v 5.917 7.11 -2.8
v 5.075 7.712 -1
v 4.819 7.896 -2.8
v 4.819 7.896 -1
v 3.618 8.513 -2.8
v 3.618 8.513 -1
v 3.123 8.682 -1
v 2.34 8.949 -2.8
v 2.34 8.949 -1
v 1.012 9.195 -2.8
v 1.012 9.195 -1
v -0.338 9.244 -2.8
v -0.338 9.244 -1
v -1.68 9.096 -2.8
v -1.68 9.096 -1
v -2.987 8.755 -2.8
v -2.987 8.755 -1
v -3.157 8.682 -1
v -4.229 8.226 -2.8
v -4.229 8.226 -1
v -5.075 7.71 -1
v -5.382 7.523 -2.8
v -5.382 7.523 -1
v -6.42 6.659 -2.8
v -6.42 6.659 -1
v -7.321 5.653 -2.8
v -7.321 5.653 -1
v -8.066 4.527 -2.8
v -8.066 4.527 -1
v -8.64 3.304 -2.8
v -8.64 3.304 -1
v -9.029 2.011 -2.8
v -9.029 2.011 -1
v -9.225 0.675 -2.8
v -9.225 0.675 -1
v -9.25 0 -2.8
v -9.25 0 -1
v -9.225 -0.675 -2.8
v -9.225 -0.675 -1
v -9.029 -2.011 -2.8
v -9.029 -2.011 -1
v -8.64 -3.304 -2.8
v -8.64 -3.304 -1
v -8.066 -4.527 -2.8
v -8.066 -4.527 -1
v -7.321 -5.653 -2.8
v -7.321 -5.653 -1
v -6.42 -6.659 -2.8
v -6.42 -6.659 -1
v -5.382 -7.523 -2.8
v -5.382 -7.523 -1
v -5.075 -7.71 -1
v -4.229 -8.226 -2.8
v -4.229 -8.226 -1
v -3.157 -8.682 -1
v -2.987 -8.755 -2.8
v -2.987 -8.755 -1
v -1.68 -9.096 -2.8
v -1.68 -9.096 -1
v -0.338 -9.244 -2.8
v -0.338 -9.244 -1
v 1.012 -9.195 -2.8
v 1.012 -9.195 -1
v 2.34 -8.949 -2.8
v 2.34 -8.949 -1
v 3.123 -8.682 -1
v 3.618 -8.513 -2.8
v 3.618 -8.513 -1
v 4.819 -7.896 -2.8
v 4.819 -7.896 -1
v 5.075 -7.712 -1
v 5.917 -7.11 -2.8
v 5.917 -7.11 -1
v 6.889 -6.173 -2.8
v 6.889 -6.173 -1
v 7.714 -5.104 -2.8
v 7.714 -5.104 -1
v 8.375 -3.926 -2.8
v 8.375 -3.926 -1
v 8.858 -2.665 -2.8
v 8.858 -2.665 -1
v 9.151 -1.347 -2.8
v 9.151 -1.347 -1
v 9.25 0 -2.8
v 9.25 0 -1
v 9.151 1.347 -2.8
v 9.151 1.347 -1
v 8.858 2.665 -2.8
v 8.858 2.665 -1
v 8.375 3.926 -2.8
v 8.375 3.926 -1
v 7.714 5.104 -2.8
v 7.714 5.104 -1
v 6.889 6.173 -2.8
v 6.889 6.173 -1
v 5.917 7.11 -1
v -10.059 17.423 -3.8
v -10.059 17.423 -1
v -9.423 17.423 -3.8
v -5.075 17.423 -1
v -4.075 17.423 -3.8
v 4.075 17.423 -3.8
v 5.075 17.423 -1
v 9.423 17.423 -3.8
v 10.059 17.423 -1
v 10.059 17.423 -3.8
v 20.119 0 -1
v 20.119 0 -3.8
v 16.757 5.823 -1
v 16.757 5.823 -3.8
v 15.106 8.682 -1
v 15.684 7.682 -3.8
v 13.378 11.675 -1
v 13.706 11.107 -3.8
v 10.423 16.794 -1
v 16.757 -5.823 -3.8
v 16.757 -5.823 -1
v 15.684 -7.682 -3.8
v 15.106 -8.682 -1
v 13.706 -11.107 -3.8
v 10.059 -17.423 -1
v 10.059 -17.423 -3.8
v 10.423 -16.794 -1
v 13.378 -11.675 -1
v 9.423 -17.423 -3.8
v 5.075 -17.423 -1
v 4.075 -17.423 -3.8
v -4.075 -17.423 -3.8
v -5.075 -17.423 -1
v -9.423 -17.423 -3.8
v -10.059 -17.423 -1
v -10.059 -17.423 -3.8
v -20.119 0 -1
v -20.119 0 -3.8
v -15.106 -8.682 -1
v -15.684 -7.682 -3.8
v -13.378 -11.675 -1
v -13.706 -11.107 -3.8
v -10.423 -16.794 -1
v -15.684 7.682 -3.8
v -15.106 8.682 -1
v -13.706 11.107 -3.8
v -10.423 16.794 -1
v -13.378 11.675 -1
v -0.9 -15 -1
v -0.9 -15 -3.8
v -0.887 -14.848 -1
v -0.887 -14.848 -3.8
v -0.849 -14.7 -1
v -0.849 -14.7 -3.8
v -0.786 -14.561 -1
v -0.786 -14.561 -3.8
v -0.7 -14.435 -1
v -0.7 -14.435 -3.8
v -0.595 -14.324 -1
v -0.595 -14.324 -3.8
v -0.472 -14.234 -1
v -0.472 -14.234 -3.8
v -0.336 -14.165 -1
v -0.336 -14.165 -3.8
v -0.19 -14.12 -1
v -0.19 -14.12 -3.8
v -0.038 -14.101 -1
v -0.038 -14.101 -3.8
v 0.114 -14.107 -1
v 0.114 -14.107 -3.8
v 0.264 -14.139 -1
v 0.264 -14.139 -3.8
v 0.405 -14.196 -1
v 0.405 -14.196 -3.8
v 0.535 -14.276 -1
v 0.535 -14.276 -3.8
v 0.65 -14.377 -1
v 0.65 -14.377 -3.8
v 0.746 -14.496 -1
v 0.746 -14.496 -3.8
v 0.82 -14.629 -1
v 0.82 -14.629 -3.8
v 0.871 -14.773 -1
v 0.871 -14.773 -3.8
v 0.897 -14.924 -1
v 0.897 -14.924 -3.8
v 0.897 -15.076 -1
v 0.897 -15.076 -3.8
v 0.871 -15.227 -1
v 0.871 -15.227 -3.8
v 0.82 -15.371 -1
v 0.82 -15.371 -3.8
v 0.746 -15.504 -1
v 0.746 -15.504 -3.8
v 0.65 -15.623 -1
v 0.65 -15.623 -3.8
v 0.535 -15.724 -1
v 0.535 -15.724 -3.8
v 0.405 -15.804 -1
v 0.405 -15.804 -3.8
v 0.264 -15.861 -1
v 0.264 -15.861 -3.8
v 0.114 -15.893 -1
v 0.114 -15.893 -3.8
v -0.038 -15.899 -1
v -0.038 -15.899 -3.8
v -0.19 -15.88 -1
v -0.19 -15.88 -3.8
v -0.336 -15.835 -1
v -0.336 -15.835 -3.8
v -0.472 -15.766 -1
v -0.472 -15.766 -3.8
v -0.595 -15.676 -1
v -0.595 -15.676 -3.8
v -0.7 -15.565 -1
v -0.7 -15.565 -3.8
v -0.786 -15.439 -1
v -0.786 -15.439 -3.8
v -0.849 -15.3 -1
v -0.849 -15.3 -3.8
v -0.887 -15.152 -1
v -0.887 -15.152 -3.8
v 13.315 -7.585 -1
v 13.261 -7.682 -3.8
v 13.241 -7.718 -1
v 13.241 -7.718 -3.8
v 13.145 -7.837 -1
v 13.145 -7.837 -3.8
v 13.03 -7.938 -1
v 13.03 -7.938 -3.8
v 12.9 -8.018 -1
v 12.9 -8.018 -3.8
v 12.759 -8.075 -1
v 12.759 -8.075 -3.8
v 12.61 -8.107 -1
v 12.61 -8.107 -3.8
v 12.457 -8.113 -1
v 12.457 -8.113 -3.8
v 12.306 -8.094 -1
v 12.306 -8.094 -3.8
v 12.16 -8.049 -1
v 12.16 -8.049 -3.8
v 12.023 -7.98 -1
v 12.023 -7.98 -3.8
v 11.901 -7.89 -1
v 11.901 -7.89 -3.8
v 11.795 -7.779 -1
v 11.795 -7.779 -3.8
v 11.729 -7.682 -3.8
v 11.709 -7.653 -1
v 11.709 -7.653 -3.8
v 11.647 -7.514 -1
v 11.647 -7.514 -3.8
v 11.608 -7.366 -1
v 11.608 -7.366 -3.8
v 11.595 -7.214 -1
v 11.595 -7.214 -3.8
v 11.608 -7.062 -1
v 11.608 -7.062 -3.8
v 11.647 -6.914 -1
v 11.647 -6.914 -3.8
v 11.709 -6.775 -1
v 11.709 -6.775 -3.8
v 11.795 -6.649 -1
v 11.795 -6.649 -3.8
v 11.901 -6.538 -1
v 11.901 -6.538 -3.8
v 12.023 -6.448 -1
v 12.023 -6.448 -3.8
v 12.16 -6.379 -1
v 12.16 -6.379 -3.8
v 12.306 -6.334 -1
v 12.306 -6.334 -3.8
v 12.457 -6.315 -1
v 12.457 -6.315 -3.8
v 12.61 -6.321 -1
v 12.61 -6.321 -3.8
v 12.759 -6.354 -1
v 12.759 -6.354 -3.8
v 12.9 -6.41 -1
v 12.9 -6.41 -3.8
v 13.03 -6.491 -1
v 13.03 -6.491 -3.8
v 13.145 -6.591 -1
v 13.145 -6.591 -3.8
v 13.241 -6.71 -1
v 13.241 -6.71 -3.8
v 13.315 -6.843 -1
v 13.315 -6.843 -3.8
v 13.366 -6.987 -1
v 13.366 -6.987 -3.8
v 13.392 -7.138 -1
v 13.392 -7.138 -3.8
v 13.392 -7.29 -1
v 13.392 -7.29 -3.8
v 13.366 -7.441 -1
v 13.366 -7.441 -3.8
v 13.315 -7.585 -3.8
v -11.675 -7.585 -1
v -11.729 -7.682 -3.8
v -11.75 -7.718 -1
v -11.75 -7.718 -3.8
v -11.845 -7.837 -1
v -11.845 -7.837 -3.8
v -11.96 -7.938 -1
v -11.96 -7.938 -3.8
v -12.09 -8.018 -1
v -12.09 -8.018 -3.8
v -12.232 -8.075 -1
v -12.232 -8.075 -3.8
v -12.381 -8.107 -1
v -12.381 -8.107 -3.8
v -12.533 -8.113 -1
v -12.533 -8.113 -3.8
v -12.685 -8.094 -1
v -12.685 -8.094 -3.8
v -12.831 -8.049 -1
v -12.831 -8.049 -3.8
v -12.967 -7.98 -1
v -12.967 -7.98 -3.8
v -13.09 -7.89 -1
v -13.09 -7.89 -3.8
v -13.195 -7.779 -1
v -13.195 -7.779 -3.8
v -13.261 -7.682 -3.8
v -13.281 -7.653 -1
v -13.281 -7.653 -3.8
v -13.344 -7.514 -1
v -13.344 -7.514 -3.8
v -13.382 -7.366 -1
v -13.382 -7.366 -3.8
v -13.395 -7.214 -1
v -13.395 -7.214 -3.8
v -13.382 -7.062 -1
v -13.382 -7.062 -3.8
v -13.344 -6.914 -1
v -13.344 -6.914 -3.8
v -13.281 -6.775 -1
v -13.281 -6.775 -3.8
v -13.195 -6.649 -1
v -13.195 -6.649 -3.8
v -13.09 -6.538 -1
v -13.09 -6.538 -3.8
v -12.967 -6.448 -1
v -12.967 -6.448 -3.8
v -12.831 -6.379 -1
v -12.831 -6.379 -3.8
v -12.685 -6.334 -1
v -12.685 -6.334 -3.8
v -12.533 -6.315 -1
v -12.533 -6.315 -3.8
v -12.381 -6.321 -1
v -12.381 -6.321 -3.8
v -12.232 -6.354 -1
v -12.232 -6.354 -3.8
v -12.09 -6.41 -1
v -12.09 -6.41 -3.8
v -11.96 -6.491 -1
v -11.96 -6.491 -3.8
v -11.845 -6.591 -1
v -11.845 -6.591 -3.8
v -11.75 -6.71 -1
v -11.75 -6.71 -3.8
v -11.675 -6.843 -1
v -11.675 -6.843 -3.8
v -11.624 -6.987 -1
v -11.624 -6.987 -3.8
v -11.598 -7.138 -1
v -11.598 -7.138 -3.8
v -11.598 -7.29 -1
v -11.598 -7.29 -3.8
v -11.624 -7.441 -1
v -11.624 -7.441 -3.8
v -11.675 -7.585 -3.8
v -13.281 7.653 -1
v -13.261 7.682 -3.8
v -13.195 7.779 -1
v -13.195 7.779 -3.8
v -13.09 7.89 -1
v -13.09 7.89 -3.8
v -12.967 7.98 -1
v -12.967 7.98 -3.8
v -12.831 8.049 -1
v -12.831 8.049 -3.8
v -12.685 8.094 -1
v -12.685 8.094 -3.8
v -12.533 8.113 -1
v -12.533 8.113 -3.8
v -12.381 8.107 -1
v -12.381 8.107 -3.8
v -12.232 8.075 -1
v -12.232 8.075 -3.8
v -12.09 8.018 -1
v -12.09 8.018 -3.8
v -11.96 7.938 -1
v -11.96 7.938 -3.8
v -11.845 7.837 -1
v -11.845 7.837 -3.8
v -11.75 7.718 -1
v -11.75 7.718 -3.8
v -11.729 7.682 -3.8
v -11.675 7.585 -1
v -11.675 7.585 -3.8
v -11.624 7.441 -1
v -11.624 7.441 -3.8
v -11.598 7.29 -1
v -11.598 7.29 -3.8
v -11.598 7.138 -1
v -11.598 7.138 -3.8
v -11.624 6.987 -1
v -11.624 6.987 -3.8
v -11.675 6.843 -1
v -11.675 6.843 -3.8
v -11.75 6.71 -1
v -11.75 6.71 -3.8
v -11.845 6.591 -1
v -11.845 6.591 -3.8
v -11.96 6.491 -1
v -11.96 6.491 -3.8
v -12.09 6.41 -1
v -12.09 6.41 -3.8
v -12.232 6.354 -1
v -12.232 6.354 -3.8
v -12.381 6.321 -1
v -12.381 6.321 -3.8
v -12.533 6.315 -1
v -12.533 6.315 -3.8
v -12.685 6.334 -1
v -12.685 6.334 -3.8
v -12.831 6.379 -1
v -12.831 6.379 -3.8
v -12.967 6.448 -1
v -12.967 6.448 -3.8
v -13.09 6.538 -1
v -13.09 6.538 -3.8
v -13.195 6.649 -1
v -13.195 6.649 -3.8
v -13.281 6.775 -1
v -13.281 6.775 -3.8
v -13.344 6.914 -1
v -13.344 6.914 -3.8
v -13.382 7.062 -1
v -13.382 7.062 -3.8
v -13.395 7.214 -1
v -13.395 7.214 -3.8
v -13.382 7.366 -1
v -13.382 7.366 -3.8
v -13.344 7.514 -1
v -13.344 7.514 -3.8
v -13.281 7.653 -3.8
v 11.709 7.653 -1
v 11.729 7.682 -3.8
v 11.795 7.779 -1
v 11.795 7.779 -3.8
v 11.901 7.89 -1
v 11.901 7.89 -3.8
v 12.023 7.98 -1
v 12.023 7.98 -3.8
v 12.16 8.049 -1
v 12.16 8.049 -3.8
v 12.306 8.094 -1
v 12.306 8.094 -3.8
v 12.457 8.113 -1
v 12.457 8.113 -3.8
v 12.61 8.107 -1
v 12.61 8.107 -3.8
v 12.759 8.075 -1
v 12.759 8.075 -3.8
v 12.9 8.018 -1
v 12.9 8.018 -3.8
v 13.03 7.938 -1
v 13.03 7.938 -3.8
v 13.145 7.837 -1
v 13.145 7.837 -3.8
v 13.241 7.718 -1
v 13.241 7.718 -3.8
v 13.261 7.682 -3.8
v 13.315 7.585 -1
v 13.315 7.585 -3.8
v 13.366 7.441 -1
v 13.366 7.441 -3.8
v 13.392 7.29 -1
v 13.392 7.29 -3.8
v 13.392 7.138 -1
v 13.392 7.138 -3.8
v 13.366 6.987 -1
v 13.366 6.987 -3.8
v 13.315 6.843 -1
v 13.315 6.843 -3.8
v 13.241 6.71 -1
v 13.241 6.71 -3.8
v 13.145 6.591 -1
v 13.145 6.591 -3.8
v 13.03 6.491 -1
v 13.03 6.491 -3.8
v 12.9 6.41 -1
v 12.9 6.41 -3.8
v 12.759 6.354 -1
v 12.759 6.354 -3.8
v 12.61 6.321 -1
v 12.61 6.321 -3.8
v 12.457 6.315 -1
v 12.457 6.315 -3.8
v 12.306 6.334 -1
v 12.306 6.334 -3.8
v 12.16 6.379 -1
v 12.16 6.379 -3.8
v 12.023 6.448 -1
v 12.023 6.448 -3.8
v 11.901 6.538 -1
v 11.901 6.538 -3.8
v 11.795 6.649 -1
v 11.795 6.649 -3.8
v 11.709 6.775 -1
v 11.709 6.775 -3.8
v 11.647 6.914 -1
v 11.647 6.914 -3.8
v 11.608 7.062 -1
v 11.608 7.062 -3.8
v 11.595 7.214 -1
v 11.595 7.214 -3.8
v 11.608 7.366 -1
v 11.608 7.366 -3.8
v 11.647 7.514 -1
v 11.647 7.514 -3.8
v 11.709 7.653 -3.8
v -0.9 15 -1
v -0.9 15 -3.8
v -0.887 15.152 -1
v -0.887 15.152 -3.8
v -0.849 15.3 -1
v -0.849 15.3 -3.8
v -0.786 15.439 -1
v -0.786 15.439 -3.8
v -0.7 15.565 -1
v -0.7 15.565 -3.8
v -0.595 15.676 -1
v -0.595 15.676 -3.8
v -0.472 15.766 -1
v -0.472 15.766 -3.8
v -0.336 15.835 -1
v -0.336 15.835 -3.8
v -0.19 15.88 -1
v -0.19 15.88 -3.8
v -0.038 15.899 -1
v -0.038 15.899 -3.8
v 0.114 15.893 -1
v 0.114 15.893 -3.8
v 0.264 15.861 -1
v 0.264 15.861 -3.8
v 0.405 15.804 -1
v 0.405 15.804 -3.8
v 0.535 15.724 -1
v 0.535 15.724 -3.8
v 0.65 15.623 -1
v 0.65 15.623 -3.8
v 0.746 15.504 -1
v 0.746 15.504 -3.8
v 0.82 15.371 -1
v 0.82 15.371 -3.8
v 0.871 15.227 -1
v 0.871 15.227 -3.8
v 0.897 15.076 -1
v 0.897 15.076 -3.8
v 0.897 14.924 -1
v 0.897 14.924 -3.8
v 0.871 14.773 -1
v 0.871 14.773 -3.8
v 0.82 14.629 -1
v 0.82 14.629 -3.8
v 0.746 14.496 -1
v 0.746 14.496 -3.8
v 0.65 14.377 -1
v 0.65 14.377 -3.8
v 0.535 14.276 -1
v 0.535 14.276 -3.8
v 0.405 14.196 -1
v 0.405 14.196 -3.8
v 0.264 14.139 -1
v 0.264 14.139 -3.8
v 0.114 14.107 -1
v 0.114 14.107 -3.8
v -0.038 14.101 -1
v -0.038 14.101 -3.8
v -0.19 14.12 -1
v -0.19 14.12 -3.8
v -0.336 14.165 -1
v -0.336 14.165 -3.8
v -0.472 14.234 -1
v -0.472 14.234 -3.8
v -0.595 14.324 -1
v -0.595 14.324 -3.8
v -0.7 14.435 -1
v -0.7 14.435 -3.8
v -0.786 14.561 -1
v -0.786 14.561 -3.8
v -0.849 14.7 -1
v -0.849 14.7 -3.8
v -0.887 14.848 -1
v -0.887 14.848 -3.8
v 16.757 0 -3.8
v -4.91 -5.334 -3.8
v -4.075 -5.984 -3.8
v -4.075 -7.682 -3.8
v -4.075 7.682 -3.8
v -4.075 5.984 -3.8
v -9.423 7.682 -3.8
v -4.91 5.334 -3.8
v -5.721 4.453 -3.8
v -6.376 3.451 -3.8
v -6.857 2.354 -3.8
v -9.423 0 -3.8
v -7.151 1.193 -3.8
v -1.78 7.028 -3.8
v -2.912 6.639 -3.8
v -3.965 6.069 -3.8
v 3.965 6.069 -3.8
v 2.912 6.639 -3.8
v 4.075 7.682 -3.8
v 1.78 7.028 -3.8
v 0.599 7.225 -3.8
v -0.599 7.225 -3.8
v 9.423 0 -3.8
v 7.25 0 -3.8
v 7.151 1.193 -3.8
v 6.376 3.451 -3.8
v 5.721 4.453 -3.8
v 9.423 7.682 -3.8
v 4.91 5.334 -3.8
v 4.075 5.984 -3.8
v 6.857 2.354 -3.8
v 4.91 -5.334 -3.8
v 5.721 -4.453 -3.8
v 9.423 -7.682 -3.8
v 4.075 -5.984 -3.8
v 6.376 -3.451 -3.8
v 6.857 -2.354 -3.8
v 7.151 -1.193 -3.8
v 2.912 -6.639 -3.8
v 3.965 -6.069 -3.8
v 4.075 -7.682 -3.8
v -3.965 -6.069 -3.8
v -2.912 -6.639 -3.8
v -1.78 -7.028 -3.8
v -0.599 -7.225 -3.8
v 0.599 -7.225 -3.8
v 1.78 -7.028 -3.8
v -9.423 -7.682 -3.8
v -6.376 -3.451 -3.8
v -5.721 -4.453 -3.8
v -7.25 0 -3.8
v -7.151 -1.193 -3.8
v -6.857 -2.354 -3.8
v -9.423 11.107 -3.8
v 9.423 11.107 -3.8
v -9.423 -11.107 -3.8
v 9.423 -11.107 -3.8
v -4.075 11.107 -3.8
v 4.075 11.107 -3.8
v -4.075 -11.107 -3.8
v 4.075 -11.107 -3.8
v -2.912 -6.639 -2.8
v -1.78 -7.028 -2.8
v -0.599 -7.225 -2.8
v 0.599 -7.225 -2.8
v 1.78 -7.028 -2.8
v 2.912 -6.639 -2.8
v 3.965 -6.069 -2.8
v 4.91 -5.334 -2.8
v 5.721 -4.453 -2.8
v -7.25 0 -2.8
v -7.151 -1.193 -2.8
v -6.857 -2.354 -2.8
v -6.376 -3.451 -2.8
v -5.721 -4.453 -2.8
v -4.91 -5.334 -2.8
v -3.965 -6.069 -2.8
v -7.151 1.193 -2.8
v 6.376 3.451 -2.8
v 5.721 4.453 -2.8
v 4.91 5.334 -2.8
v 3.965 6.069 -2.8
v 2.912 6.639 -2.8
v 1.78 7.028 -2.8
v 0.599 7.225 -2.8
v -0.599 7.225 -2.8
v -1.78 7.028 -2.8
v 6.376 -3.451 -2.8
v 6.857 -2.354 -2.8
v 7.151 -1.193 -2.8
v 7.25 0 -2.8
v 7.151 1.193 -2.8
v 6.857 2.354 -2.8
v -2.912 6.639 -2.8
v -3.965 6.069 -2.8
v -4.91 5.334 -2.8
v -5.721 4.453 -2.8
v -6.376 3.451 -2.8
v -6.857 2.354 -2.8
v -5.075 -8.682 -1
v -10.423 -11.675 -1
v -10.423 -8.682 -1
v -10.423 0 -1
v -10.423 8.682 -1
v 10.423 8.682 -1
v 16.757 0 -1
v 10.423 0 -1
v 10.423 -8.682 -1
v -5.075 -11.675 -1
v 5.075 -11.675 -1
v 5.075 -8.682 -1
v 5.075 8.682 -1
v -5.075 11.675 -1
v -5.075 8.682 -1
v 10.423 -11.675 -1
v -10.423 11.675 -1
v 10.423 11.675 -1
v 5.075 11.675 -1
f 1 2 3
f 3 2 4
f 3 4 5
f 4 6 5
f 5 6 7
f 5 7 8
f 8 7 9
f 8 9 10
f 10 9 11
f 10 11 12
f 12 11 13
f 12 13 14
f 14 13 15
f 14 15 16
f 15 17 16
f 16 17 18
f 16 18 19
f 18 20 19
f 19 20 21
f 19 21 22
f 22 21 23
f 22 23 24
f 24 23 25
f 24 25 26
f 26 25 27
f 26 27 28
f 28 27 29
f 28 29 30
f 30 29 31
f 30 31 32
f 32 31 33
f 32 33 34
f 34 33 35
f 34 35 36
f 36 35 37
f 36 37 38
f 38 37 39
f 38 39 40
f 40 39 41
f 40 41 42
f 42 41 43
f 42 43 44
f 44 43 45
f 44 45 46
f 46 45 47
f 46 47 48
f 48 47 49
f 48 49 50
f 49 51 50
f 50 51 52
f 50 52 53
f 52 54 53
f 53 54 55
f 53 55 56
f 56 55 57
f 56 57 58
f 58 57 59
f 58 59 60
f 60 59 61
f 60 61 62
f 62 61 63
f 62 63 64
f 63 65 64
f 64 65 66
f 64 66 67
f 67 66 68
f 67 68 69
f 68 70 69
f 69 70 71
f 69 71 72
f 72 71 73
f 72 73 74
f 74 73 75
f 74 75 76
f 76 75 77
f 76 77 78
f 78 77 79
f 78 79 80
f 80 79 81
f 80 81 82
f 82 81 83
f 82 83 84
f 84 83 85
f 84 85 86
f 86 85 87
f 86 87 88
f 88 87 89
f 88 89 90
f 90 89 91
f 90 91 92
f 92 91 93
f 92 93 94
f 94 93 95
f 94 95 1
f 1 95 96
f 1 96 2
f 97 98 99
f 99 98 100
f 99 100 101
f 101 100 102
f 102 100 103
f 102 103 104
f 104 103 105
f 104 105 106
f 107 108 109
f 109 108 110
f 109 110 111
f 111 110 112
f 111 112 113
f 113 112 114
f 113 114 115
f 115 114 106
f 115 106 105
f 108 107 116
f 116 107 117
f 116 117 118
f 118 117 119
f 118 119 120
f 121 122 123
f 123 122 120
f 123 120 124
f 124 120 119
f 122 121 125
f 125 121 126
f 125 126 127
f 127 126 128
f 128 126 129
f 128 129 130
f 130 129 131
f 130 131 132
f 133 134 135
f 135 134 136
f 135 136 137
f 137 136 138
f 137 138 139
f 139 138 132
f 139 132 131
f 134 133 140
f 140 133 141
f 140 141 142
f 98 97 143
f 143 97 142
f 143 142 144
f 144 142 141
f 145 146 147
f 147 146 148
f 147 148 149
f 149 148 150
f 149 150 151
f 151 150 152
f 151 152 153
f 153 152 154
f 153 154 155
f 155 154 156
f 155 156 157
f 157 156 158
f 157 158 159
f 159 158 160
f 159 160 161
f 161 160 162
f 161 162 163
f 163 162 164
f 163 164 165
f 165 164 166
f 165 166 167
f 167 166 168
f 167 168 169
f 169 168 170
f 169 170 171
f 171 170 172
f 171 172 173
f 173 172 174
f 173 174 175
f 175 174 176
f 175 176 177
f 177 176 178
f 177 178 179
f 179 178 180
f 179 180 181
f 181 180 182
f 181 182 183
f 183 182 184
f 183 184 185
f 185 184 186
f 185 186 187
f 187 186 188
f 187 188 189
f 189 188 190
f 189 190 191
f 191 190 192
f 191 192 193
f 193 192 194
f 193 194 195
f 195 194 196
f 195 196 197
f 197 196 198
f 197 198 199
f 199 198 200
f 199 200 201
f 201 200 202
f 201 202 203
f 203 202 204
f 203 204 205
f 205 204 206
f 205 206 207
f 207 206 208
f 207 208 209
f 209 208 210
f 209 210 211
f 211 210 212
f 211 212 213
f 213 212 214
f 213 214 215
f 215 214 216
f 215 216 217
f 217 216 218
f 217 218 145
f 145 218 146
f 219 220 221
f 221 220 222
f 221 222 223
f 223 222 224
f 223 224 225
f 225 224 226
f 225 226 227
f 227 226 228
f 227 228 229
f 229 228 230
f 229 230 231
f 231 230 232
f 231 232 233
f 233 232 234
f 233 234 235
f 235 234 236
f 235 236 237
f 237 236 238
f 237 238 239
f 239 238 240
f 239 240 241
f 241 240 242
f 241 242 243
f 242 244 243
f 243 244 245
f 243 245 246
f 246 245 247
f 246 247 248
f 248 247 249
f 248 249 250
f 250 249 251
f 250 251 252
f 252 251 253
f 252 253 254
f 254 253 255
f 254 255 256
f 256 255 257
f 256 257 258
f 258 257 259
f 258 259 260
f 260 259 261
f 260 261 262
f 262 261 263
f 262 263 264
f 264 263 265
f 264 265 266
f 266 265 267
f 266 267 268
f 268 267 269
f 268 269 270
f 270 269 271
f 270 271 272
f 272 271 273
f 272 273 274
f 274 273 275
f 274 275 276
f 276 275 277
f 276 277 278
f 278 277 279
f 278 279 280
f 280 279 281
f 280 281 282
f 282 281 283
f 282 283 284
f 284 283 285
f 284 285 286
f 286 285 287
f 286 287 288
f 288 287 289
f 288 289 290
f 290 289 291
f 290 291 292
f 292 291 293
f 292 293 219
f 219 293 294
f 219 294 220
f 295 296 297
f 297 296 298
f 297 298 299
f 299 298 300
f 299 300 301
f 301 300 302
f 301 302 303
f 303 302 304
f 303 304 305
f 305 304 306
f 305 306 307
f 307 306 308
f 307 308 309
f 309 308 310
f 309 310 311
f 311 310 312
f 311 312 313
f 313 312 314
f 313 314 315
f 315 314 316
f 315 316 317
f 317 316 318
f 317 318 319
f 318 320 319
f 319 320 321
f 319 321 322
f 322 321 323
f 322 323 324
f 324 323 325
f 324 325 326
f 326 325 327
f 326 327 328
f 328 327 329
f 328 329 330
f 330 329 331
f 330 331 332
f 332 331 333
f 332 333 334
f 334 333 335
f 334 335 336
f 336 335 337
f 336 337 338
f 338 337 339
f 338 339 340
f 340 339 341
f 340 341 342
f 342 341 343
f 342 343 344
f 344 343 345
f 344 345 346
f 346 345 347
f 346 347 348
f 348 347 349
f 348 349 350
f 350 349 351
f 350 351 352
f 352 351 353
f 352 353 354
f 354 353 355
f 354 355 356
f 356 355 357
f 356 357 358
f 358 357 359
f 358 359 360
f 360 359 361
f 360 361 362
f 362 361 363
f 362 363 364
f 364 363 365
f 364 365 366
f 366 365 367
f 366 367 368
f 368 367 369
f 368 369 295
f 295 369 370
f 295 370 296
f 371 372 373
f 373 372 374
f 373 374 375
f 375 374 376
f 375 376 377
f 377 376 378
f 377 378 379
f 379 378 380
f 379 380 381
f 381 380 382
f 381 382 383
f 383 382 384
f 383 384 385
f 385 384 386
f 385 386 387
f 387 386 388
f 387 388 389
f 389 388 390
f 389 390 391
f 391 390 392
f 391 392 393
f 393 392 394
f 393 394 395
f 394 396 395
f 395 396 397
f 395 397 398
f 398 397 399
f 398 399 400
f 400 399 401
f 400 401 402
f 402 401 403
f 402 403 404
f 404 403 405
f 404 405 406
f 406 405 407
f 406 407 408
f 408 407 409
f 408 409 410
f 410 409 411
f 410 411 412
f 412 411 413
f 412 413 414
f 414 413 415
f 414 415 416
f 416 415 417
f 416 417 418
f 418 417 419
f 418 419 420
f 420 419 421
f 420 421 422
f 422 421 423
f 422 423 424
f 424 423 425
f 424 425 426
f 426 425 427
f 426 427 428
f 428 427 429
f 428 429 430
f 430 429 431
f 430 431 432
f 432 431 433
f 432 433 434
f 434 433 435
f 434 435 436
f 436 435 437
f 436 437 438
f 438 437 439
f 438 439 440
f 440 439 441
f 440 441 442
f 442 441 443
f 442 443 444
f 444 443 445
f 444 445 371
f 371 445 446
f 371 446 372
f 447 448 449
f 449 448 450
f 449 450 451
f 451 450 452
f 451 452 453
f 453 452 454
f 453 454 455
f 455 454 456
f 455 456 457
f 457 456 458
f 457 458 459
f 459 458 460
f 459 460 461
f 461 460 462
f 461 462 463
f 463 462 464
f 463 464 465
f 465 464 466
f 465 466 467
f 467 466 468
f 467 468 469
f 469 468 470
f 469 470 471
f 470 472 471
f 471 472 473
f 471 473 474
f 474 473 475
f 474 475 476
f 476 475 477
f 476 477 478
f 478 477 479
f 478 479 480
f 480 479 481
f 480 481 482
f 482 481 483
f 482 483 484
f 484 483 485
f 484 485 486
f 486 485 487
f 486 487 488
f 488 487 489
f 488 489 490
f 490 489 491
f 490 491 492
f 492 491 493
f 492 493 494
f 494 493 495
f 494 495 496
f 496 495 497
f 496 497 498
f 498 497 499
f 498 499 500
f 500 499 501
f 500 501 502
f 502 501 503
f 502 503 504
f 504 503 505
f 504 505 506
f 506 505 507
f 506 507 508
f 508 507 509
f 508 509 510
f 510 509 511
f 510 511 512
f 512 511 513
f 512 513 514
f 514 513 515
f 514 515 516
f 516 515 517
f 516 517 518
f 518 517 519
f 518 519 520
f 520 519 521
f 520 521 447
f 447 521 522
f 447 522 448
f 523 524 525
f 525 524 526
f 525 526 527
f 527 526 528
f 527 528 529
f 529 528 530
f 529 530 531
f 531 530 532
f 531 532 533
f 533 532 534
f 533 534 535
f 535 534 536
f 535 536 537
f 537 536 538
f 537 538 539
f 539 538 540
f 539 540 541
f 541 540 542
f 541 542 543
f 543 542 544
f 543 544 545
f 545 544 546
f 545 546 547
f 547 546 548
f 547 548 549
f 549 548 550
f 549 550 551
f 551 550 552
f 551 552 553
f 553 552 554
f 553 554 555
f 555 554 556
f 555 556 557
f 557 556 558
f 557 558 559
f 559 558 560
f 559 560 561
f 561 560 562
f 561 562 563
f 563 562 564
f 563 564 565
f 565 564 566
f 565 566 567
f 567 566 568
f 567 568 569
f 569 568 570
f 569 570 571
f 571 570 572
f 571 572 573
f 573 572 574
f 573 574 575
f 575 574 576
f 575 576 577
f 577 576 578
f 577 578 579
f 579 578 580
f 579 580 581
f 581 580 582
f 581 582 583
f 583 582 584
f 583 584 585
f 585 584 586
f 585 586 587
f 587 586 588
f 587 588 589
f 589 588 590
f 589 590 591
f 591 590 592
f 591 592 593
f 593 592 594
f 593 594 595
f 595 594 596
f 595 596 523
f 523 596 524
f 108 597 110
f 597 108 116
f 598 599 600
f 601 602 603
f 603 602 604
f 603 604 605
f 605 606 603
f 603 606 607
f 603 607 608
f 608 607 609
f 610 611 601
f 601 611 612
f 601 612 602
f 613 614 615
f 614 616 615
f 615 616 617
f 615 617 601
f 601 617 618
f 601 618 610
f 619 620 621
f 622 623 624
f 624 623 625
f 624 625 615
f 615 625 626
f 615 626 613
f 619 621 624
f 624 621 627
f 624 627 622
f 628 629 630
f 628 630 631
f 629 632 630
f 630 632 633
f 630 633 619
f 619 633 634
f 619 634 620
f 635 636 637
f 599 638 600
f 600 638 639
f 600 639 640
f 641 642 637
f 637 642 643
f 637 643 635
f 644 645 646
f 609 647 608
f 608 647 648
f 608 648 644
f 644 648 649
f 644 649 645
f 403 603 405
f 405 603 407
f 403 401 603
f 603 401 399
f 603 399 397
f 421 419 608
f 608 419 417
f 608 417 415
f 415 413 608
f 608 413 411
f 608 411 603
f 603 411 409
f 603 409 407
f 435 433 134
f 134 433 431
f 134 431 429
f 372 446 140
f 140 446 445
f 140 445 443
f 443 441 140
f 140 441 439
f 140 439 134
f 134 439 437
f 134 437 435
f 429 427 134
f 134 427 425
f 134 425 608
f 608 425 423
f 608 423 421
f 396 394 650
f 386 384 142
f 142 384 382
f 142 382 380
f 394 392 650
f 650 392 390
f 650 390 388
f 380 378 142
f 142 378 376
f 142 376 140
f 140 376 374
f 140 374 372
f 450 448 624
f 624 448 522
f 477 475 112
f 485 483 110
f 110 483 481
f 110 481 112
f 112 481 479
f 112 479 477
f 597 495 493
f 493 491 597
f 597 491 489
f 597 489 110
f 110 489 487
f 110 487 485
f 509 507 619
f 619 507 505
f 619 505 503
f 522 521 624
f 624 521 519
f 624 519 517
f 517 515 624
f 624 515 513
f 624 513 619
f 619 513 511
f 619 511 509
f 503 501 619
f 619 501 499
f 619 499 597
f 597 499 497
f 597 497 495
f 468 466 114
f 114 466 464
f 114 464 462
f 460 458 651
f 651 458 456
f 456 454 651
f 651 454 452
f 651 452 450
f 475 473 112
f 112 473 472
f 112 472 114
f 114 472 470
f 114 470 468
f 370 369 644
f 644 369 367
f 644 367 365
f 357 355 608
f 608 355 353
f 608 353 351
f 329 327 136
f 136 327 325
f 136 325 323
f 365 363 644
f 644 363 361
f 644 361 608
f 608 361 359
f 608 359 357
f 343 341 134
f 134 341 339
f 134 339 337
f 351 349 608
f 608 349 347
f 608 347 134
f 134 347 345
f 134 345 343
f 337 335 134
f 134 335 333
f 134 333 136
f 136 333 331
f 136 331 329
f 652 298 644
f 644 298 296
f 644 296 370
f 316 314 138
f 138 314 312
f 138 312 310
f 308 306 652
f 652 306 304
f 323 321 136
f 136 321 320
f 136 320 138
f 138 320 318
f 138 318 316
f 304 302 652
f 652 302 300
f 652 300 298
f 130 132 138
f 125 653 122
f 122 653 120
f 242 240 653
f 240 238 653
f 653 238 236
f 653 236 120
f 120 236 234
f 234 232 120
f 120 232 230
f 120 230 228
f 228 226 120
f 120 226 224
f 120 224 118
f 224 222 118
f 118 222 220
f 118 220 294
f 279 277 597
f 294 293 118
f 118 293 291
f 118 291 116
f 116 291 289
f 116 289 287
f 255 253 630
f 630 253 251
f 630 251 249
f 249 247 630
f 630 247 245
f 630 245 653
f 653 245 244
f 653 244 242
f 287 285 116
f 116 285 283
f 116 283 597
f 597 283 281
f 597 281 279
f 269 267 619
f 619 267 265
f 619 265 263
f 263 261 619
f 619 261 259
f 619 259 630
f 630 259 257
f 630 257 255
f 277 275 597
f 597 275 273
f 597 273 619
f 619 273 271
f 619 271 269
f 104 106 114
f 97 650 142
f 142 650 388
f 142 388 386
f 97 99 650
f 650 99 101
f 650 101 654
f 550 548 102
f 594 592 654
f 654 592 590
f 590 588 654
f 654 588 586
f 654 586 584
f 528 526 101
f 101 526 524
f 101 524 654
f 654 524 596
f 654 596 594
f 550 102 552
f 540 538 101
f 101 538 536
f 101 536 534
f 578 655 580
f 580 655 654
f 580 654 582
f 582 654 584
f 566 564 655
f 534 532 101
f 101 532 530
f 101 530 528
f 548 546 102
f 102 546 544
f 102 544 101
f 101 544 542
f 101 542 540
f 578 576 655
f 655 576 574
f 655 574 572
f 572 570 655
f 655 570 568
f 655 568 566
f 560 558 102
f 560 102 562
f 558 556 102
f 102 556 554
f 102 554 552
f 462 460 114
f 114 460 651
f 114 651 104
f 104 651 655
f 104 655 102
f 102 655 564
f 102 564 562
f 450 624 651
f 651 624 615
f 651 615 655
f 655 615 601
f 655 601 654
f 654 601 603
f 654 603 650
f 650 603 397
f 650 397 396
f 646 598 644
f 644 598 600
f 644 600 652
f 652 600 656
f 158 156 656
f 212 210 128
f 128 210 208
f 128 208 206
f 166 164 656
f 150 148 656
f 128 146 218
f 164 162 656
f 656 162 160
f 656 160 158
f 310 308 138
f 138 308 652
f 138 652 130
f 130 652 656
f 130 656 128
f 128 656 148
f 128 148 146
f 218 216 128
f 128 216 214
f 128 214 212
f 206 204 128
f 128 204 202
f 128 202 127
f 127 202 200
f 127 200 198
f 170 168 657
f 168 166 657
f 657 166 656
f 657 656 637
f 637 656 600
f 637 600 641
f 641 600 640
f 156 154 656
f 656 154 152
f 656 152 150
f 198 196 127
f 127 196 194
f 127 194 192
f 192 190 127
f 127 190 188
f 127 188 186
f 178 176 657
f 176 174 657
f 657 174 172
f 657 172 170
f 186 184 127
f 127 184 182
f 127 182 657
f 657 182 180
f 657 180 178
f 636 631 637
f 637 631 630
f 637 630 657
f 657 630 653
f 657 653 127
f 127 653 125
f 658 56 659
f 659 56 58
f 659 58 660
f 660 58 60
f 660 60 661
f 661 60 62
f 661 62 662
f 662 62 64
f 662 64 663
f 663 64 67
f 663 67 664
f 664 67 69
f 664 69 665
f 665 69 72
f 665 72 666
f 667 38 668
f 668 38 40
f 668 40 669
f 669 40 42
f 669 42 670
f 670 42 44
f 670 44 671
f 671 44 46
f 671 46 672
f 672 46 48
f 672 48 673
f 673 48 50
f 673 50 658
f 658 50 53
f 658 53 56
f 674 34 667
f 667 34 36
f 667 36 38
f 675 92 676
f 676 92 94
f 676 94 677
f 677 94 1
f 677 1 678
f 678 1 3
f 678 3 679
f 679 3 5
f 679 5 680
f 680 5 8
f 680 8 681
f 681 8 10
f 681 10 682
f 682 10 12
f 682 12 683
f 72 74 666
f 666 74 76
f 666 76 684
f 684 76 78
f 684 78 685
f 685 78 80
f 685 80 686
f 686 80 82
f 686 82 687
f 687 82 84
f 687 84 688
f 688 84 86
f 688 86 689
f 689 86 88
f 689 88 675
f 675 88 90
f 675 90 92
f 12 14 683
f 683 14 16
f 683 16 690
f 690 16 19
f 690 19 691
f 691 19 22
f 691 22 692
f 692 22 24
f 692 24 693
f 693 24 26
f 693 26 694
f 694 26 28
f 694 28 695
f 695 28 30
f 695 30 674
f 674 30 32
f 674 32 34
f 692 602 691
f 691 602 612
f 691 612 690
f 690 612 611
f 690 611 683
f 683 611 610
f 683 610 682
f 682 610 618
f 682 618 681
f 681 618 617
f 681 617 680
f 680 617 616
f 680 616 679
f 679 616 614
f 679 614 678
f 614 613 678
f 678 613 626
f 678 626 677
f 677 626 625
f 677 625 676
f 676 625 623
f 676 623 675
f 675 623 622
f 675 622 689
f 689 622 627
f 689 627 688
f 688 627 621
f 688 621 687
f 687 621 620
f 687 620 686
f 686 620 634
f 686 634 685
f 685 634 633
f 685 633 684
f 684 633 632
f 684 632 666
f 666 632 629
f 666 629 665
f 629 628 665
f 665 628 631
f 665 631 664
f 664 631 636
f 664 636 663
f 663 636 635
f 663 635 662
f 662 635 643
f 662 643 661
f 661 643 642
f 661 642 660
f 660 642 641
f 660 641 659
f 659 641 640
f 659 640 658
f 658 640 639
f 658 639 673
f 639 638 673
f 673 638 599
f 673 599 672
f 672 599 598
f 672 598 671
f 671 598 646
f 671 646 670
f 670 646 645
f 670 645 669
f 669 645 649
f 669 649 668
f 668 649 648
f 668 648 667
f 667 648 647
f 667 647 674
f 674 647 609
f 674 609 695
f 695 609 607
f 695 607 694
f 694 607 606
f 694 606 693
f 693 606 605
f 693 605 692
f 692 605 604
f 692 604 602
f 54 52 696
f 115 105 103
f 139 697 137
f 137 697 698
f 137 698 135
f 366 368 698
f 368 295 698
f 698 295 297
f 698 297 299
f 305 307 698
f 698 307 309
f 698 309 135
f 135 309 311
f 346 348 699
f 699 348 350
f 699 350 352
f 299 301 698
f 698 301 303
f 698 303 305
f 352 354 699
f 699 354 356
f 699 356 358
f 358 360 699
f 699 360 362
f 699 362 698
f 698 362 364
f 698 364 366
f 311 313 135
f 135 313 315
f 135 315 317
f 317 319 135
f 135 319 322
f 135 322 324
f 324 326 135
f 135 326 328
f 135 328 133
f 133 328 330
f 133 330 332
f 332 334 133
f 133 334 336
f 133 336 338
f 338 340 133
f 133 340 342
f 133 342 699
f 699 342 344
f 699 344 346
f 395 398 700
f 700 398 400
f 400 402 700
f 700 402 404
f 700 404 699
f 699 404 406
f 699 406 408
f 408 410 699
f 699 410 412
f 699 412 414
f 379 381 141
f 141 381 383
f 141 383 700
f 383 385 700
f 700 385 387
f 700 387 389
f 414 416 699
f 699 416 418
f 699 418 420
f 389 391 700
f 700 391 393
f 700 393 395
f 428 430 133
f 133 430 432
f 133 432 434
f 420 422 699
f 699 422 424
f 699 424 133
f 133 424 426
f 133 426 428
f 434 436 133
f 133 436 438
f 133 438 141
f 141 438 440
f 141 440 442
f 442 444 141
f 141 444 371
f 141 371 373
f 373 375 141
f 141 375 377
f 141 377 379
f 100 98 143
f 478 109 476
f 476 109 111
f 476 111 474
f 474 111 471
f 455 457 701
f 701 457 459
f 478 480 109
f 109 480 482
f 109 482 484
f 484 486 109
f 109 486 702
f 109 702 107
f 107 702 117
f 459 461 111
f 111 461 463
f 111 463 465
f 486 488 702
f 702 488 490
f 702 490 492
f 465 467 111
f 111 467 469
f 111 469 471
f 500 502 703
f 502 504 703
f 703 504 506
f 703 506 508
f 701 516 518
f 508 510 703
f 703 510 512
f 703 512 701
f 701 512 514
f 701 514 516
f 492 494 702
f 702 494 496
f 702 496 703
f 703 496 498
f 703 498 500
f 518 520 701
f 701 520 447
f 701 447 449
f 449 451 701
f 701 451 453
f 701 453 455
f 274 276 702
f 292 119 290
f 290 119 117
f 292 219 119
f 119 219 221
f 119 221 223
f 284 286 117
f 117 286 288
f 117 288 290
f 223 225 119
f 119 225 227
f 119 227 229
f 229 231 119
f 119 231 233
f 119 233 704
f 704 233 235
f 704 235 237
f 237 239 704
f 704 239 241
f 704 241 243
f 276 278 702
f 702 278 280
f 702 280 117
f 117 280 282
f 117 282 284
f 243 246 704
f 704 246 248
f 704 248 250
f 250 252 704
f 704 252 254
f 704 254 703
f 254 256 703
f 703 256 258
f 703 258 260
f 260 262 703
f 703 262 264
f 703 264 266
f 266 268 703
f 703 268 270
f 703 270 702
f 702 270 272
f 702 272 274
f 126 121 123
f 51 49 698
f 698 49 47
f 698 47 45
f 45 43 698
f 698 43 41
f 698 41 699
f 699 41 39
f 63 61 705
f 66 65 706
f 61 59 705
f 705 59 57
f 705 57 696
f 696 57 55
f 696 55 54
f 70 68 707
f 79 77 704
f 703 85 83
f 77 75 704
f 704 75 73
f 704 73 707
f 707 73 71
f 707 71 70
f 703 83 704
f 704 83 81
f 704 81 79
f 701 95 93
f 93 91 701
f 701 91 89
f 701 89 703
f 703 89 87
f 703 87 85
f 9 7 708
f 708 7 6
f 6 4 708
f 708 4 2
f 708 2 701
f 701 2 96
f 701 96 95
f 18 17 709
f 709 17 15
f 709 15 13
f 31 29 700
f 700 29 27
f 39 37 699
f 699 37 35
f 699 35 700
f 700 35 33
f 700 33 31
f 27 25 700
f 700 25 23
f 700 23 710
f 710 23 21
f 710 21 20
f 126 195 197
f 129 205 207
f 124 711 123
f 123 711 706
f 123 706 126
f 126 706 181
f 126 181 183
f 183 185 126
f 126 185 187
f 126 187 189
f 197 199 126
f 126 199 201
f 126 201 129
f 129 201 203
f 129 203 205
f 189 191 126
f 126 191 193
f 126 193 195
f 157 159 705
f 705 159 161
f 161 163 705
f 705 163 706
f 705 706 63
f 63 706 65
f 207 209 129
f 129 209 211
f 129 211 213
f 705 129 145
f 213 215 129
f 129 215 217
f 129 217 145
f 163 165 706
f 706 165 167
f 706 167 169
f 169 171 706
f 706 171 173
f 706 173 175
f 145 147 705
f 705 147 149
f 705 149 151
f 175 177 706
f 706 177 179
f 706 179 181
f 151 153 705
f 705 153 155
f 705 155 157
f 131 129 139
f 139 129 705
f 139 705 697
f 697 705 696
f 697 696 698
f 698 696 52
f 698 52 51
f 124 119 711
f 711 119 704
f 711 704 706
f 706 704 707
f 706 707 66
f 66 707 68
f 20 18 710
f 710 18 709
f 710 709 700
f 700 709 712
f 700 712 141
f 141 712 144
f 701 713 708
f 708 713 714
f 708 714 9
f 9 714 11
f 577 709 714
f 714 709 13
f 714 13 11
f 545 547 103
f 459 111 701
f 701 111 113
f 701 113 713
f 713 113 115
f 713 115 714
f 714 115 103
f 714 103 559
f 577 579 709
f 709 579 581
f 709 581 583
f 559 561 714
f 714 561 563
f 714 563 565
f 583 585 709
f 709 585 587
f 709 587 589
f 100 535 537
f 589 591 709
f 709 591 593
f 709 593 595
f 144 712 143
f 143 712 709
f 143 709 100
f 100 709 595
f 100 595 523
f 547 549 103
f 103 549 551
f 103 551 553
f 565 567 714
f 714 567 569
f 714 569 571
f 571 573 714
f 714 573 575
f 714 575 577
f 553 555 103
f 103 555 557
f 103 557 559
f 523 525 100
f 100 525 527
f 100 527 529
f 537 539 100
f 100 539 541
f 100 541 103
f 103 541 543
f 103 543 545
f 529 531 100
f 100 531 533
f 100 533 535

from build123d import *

# Parameters (mm, degrees)
EXTRUDE_1_DEPTH      = 7
CUT_EXTRUDE_1_DEPTH  = 1.8
CUT_EXTRUDE_2_DEPTH  = 3
EXTRUDE_4_DEPTH      = 5.7
EXTRUDE_4_2_DEPTH    = 5.7
EXTRUDE_4_3_DEPTH    = 5.7
EXTRUDE_4_4_DEPTH    = 5.7
EXTRUDE_21_DEPTH     = 3.5
EXTRUDE_21_2_DEPTH   = 3.5
EXTRUDE_21_3_DEPTH   = 3.5
EXTRUDE_21_4_DEPTH   = 3.5
EXTRUDE_22_DEPTH     = 1
CUT_EXTRUDE_3_DEPTH  = 10
CUT_EXTRUDE_4_DEPTH  = 1.5
CUT_EXTRUDE_5_DEPTH  = 1
EXTRUDE_23_DEPTH     = 1.6
SKETCH_17_R          = 0.9
CUT_EXTRUDE_6_DEPTH  = 20
SKETCH_19_R          = 1.75
CUT_EXTRUDE_7_DEPTH  = 2
SKETCH_20_R          = 0.9
CUT_EXTRUDE_8_DEPTH  = 6
EXTRUDE_START        = 2.8
SKETCH_22_R          = 0.9
SKETCH_22_R_2        = 9.25
EXTRUDE_24_DEPTH     = 2.8
SKETCH_24_R          = 9.25
SKETCH_24_R_2        = 7.25
EXTRUDE_25_DEPTH     = 1
SKETCH_25_W          = 43.271682287
SKETCH_25_H          = 17.110923283
CUT_EXTRUDE_9_DEPTH  = 47
SKETCH_26_W          = 20.812214232
SKETCH_26_H          = 53.146859293
CUT_EXTRUDE_10_DEPTH = 99


with BuildPart() as part:
    # 草图1 → 凸台-拉伸1 (new body)
    with BuildSketch(Plane.XY):
        Polygon((10.059401077, 17.423393759), (-10.059401077, 17.423393759), (-20.118802154, 0), (-10.059401077, -17.423393759), (10.059401077, -17.423393759), (20.118802154, 0), align=None)
        Polygon((15.5, 0), (7.75, 13.423393759), (-7.75, 13.423393759), (-15.5, 0), (-7.75, -13.423393759), (7.75, -13.423393759), align=None, mode=Mode.SUBTRACT)
    extrude(amount=EXTRUDE_1_DEPTH)

    # 草图2 → 切除-拉伸1 (cut)
    with BuildSketch(Plane.XY.offset(7)):
        Polygon((6.863269886, -16.440794429), (6.863269886, -13.423393759), (-6.863269886, -13.423393759), (-6.863269886, -16.440794429), (-5.880670556, -17.423393759), (5.880670556, -17.423393759), align=None)
        Polygon((-4.820110193, 16.061828693), (4.820110193, 16.061828693), (5.573466666, 15.349903558), (5.573466666, 13.423393759), (-5.573466666, 13.423393759), (-5.573466666, 15.349903558), align=None)
    extrude(amount=-CUT_EXTRUDE_1_DEPTH, mode=Mode.SUBTRACT)

    # 草图3 → 切除-拉伸2 (cut)
    with BuildSketch(Plane.XY.offset(7)):
        Polygon((8.460606166, 12.192587775), (11.924707781, 14.192587775), (18.428840745, 2.927099023), (14.96473913, 0.927099023), align=None)
    extrude(amount=-CUT_EXTRUDE_2_DEPTH, mode=Mode.SUBTRACT)

    # 草图15 → 切除-拉伸5 (cut)
    with BuildSketch(Plane.XY.offset(5.2)):
        Polygon((-2.444629032, 16.061828693), (-2.444629032, 13.423393759), (-5.573466666, 13.423393759), (-5.573466666, 15.349903558), (-4.820110193, 16.061828693), align=None)
        Polygon((4.820110193, 16.061828693), (2.444629032, 16.061828693), (2.444629032, 13.423393759), (5.573466666, 13.423393759), (5.573466666, 15.349903558), align=None)
    extrude(amount=-CUT_EXTRUDE_5_DEPTH, mode=Mode.SUBTRACT)

    # 草图18 → 凸台-拉伸23 (add)
    with BuildSketch(Plane.XY.offset(7)):
        Polygon((-4.820110193, 16.061828693), (-4.820110193, 17.423393759), (-10.059401077, 17.423393759), (-20.118802154, 0), (-10.059401077, -17.423393759), (-5.880670556, -17.423393759), (-6.863269886, -16.440794429), (-6.863269886, -13.423393759), (-7.75, -13.423393759), (-15.5, 0), (-7.75, 13.423393759), (-5.573466666, 13.423393759), (-5.573466666, 15.349903558), align=None)
        Polygon((4.820110193, 16.061828693), (4.820110193, 17.423393759), (10.059401077, 17.423393759), (11.924707781, 14.192587775), (8.460606166, 12.192587775), (7.75, 13.423393759), (5.573466666, 13.423393759), (5.573466666, 15.349903558), align=None)
        Polygon((18.428840745, 2.927099023), (14.96473913, 0.927099023), (15.5, 0), (7.75, -13.423393759), (6.863269886, -13.423393759), (6.863269886, -16.440794429), (5.880670556, -17.423393759), (10.059401077, -17.423393759), (20.118802154, 0), align=None)
    extrude(amount=EXTRUDE_23_DEPTH)


with BuildPart() as body_2:
    # 草图4 → 凸台-拉伸4 (new body)
    with BuildSketch(Plane(origin=(0, 0, 0), x_dir=(-1, 0, 0), z_dir=(0, 0, -1))):
        Polygon((-11.245593136, -7.368848845), (-6.382277748, -7.368848845), (-6.382277748, -13.423393759), (-7.75, -13.423393759), align=None)
    extrude(amount=-EXTRUDE_4_DEPTH)


with BuildPart() as body_3:
    # 草图4 → Extrude 4 2 (new body)
    with BuildSketch(Plane(origin=(0, 0, 0), x_dir=(-1, 0, 0), z_dir=(0, 0, -1))):
        Polygon((6.145280676, -7.368848845), (11.245593136, -7.368848845), (7.75, -13.423393759), (6.145280676, -13.423393759), align=None)
    extrude(amount=-EXTRUDE_4_2_DEPTH)


with BuildPart() as body_4:
    # 草图4 → Extrude 4 3 (new body)
    with BuildSketch(Plane(origin=(0, 0, 0), x_dir=(-1, 0, 0), z_dir=(0, 0, -1))):
        Polygon((6.145280676, 13.423393759), (6.145280676, 8.488540604), (10.599138797, 8.488540604), (7.75, 13.423393759), align=None)
    extrude(amount=-EXTRUDE_4_3_DEPTH)


with BuildPart() as body_5:
    # 草图4 → Extrude 4 4 (new body)
    with BuildSketch(Plane(origin=(0, 0, 0), x_dir=(-1, 0, 0), z_dir=(0, 0, -1))):
        Polygon((-8.460606166, 12.192587775), (-6.674189613, 11.161199697), (-13.502811472, -0.666320308), (-15.289228025, 0.365067769), align=None)
    extrude(amount=-EXTRUDE_4_4_DEPTH)


with BuildPart() as body_6:
    # 草图6 → 凸台-拉伸21 (new body)
    with BuildSketch(Plane(origin=(0, 0, 0), x_dir=(-1, 0, 0), z_dir=(0, 0, -1))):
        Polygon((-7.167145457, 10.307375129), (-6.189945384, 10.307375129), (-6.189945384, -5.980150499), (-12.0473585, -5.980150499), (-13.626264811, -5.980150499), (-17.36358489, 0), (-11.472554935, 10.307375129), (-9.549034195, 10.307375129), align=None)
    extrude(amount=-EXTRUDE_21_DEPTH)


with BuildPart() as body_7:
    # 草图6 → Extrude 21 2 (new body)
    with BuildSketch(Plane(origin=(0, 0, 0), x_dir=(-1, 0, 0), z_dir=(0, 0, -1))):
        Polygon((-5.839026937, 13.423393759), (-5.839026937, 11.342651293), (5.746496449, 11.342651293), (5.746496449, 13.423393759), (5.746496449, 15.340981073), (-5.839026937, 15.340981073), align=None)
    extrude(amount=-EXTRUDE_21_2_DEPTH)


with BuildPart() as body_8:
    # 草图6 → Extrude 21 3 (new body)
    with BuildSketch(Plane(origin=(0, 0, 0), x_dir=(-1, 0, 0), z_dir=(0, 0, -1))):
        Polygon((6.145280676, 7.264816527), (6.145280676, 3.935780446), (14.892625012, 3.935780446), (12.812129983, 7.264816527), align=None)
    extrude(amount=-EXTRUDE_21_3_DEPTH)


with BuildPart() as body_9:
    # 草图6 → Extrude 21 4 (new body)
    with BuildSketch(Plane(origin=(0, 0, 0), x_dir=(-1, 0, 0), z_dir=(0, 0, -1))):
        Polygon((6.145280676, -5.980150499), (12.0473585, -5.980150499), (13.934439655, -5.980150499), (17.352307472, 0), (6.145280676, 0), align=None)
    extrude(amount=-EXTRUDE_21_4_DEPTH)


with BuildPart() as body_10:
    # 草图12 → 凸台-拉伸22 (new body)
    with BuildSketch(Plane(origin=(0, 0, 0), x_dir=(-1, 0, 0), z_dir=(0, 0, -1))):
        Polygon((-10.059401077, 17.423393759), (-20.118802154, 0), (-10.059401077, -17.423393759), (10.059401077, -17.423393759), (20.118802154, 0), (10.059401077, 17.423393759), align=None)
    extrude(amount=EXTRUDE_22_DEPTH)

    # 草图13 → 切除-拉伸3 (cut)
    with BuildSketch(Plane(origin=(0, 0, -1), x_dir=(-1, 0, 0), z_dir=(0, 0, -1))):
        with BuildLine():
            Line((10.123406841, 1.062471913), (7.135900995, 1.062471913))
            ThreePointArc((7.135900995, 1.062471913), (5.95884516, 2.239527747), (7.135900995, 3.416583581))
            Line((7.135900995, 3.416583581), (10.123406841, 3.416583581))
            ThreePointArc((10.123406841, 3.416583581), (11.300462675, 2.239527747), (10.123406841, 1.062471913))
        make_face()
    extrude(amount=-CUT_EXTRUDE_3_DEPTH, mode=Mode.SUBTRACT)


with BuildPart() as cut_extrude_4_tool:
    # 草图14 → 切除-拉伸4 (new body)
    with BuildSketch(Plane.XY.offset(5.7)):
        Polygon((-7.75, 13.423393759), (-6.145280676, 13.423393759), (-6.145280676, 8.463494867), (-10.599138797, 8.488540604), align=None)
        Polygon((8.460347777, 12.192438594), (8.460347777, 8.067483007), (6.674189613, 11.161199697), align=None)
    extrude(amount=-CUT_EXTRUDE_4_DEPTH)


with BuildPart() as body_4_1:
    add(body_4.part)

    # 切除-拉伸4: cut by cut_extrude_4_tool
    add(cut_extrude_4_tool.part, mode=Mode.SUBTRACT)


with BuildPart() as body_5_1:
    add(body_5.part)

    # 切除-拉伸4: cut by cut_extrude_4_tool
    add(cut_extrude_4_tool.part, mode=Mode.SUBTRACT)


with BuildPart() as cut_extrude_6_tool:
    # 草图17 → 切除-拉伸6 (new body)
    with BuildSketch(Plane(origin=(0, 0, -1), x_dir=(-1, 0, 0), z_dir=(0, 0, -1))):
        with Locations((8, 15)):
            Circle(SKETCH_17_R)
        with Locations((8, -15)):
            Circle(SKETCH_17_R)
        with Locations((-8, -15)):
            Circle(SKETCH_17_R)
        with Locations((-8, 15)):
            Circle(SKETCH_17_R)
        with Locations((17.5, 0)):
            Circle(SKETCH_17_R)
        with Locations((-17.5, 0)):
            Circle(SKETCH_17_R)
    extrude(amount=-CUT_EXTRUDE_6_DEPTH)


with BuildPart() as part_1:
    add(part.part)

    # 切除-拉伸6: cut by cut_extrude_6_tool
    add(cut_extrude_6_tool.part, mode=Mode.SUBTRACT)


with BuildPart() as body_6_1:
    add(body_6.part)

    # 切除-拉伸6: cut by cut_extrude_6_tool
    add(cut_extrude_6_tool.part, mode=Mode.SUBTRACT)


with BuildPart() as body_9_1:
    add(body_9.part)

    # 切除-拉伸6: cut by cut_extrude_6_tool
    add(cut_extrude_6_tool.part, mode=Mode.SUBTRACT)


with BuildPart() as body_10_1:
    add(body_10.part)

    # 切除-拉伸6: cut by cut_extrude_6_tool
    add(cut_extrude_6_tool.part, mode=Mode.SUBTRACT)


with BuildPart() as cut_extrude_7_tool:
    # 草图19 → 切除-拉伸7 (new body)
    with BuildSketch(Plane(origin=(0, 0, -1), x_dir=(-1, 0, 0), z_dir=(0, 0, -1))):
        with Locations((-8, 15)):
            Circle(SKETCH_19_R)
        with Locations((-17.5, 0)):
            Circle(SKETCH_19_R)
        with Locations((-8, -15)):
            Circle(SKETCH_19_R)
        with Locations((8, -15)):
            Circle(SKETCH_19_R)
        with Locations((17.5, 0)):
            Circle(SKETCH_19_R)
        with Locations((8, 15)):
            Circle(SKETCH_19_R)
    extrude(amount=-CUT_EXTRUDE_7_DEPTH)


with BuildPart() as part_2:
    add(part_1.part)

    # 切除-拉伸7: cut by cut_extrude_7_tool
    add(cut_extrude_7_tool.part, mode=Mode.SUBTRACT)


with BuildPart() as body_2_1:
    add(body_2.part)

    # 切除-拉伸7: cut by cut_extrude_7_tool
    add(cut_extrude_7_tool.part, mode=Mode.SUBTRACT)


with BuildPart() as body_3_1:
    add(body_3.part)

    # 切除-拉伸7: cut by cut_extrude_7_tool
    add(cut_extrude_7_tool.part, mode=Mode.SUBTRACT)


with BuildPart() as body_4_2:
    add(body_4_1.part)

    # 切除-拉伸7: cut by cut_extrude_7_tool
    add(cut_extrude_7_tool.part, mode=Mode.SUBTRACT)


with BuildPart() as body_6_2:
    add(body_6_1.part)

    # 切除-拉伸7: cut by cut_extrude_7_tool
    add(cut_extrude_7_tool.part, mode=Mode.SUBTRACT)


with BuildPart() as body_9_2:
    add(body_9_1.part)

    # 切除-拉伸7: cut by cut_extrude_7_tool
    add(cut_extrude_7_tool.part, mode=Mode.SUBTRACT)


with BuildPart() as body_10_2:
    add(body_10_1.part)

    # 切除-拉伸7: cut by cut_extrude_7_tool
    add(cut_extrude_7_tool.part, mode=Mode.SUBTRACT)


with BuildPart() as cut_extrude_8_tool:
    # 草图20 → 切除-拉伸8 (new body)
    with BuildSketch(Plane(origin=(0, 0, -1), x_dir=(-1, 0, 0), z_dir=(0, 0, -1))):
        with Locations((0, 15)):
            Circle(SKETCH_20_R)
        with Locations((-12.495190528, 7.214101615)):
            Circle(SKETCH_20_R)
        with Locations((12.495190528, 7.214101615)):
            Circle(SKETCH_20_R)
        with Locations((-12.495190528, -7.214101615)):
            Circle(SKETCH_20_R)
        with Locations((12.495190528, -7.214101615)):
            Circle(SKETCH_20_R)
        with Locations((0, -15)):
            Circle(SKETCH_20_R)
    extrude(amount=-CUT_EXTRUDE_8_DEPTH)


with BuildPart() as part_3:
    add(part_2.part)

    # 切除-拉伸8: cut by cut_extrude_8_tool
    add(cut_extrude_8_tool.part, mode=Mode.SUBTRACT)


with BuildPart() as body_6_3:
    add(body_6_2.part)

    # 切除-拉伸8: cut by cut_extrude_8_tool
    add(cut_extrude_8_tool.part, mode=Mode.SUBTRACT)


with BuildPart() as body_7_1:
    add(body_7.part)

    # 切除-拉伸8: cut by cut_extrude_8_tool
    add(cut_extrude_8_tool.part, mode=Mode.SUBTRACT)


with BuildPart() as body_8_1:
    add(body_8.part)

    # 切除-拉伸8: cut by cut_extrude_8_tool
    add(cut_extrude_8_tool.part, mode=Mode.SUBTRACT)


with BuildPart() as body_10_3:
    add(body_10_2.part)

    # 切除-拉伸8: cut by cut_extrude_8_tool
    add(cut_extrude_8_tool.part, mode=Mode.SUBTRACT)

    # 草图22 → 凸台-拉伸24 (add)
    with BuildSketch(Plane(origin=(0, 0, -1), x_dir=(-1, 0, 0), z_dir=(0, 0, -1)).offset(EXTRUDE_START)):
        Polygon((10.059401077, 17.423393759), (-10.059401077, 17.423393759), (-20.118802154, 0), (-10.059401077, -17.423393759), (10.059401077, -17.423393759), (20.118802154, 0), align=None)
        with Locations((-12.495190528, 7.214101615)):
            Circle(SKETCH_22_R, mode=Mode.SUBTRACT)
        with Locations((-12.495190528, -7.214101615)):
            Circle(SKETCH_22_R, mode=Mode.SUBTRACT)
        with Locations((0, -15)):
            Circle(SKETCH_22_R, mode=Mode.SUBTRACT)
        with Locations((12.495190528, -7.214101615)):
            Circle(SKETCH_22_R, mode=Mode.SUBTRACT)
        with Locations((12.495190528, 7.214101615)):
            Circle(SKETCH_22_R, mode=Mode.SUBTRACT)
        with Locations((0, 15)):
            Circle(SKETCH_22_R, mode=Mode.SUBTRACT)
        with Locations(Location((0, 0, 0), (0, 0, 21.676176117))):
            Circle(SKETCH_22_R_2, mode=Mode.SUBTRACT)
    extrude(amount=-EXTRUDE_24_DEPTH)

    # 草图24 → 凸台-拉伸25 (add)
    with BuildSketch(Plane(origin=(0, 0, -3.8), x_dir=(-1, 0, 0), z_dir=(0, 0, -1))):
        with Locations(Location((0, 0, 0), (0, 0, 21.676176117))):
            Circle(SKETCH_24_R)
        Circle(SKETCH_24_R_2, mode=Mode.SUBTRACT)
    extrude(amount=-EXTRUDE_25_DEPTH)

    # 草图26 → 切除-拉伸10 (cut)
    with BuildSketch(Plane(origin=(-15.089101615, -8.711696879, 0), x_dir=(0, 0, 1), z_dir=(-0.8660254037844423, -0.4999999999999939, 0))):
        with Locations((9.406107116, 5.866376364)):
            Rectangle(SKETCH_26_W, SKETCH_26_H)
    extrude(amount=-CUT_EXTRUDE_10_DEPTH, mode=Mode.SUBTRACT)


with BuildPart() as cut_extrude_9_tool:
    # 草图25 → 切除-拉伸9 (new body)
    with BuildSketch(Plane.XZ.offset(17.423393759)):
        with Locations((-1.517038989, 7.555461642)):
            Rectangle(SKETCH_25_W, SKETCH_25_H)
    extrude(amount=-CUT_EXTRUDE_9_DEPTH)


with BuildPart() as body_5_2:
    add(body_5_1.part)

    # 切除-拉伸9: cut by cut_extrude_9_tool
    add(cut_extrude_9_tool.part, mode=Mode.SUBTRACT)


with BuildPart() as body_2_2:
    add(body_2_1.part)

    # 切除-拉伸9: cut by cut_extrude_9_tool
    add(cut_extrude_9_tool.part, mode=Mode.SUBTRACT)


with BuildPart() as body_3_2:
    add(body_3_1.part)

    # 切除-拉伸9: cut by cut_extrude_9_tool
    add(cut_extrude_9_tool.part, mode=Mode.SUBTRACT)


with BuildPart() as body_4_3:
    add(body_4_2.part)

    # 切除-拉伸9: cut by cut_extrude_9_tool
    add(cut_extrude_9_tool.part, mode=Mode.SUBTRACT)


with BuildPart() as body_9_3:
    add(body_9_2.part)

    # 切除-拉伸9: cut by cut_extrude_9_tool
    add(cut_extrude_9_tool.part, mode=Mode.SUBTRACT)


with BuildPart() as body_7_2:
    add(body_7_1.part)

    # 切除-拉伸9: cut by cut_extrude_9_tool
    add(cut_extrude_9_tool.part, mode=Mode.SUBTRACT)


with BuildPart() as body_8_2:
    add(body_8_1.part)

    # 切除-拉伸9: cut by cut_extrude_9_tool
    add(cut_extrude_9_tool.part, mode=Mode.SUBTRACT)


with BuildPart() as body_6_4:
    add(body_6_3.part)

    # 切除-拉伸9: cut by cut_extrude_9_tool
    add(cut_extrude_9_tool.part, mode=Mode.SUBTRACT)


with BuildPart() as part_4:
    add(part_3.part)

    # 切除-拉伸9: cut by cut_extrude_9_tool
    add(cut_extrude_9_tool.part, mode=Mode.SUBTRACT)


solid = body_10_3.part
